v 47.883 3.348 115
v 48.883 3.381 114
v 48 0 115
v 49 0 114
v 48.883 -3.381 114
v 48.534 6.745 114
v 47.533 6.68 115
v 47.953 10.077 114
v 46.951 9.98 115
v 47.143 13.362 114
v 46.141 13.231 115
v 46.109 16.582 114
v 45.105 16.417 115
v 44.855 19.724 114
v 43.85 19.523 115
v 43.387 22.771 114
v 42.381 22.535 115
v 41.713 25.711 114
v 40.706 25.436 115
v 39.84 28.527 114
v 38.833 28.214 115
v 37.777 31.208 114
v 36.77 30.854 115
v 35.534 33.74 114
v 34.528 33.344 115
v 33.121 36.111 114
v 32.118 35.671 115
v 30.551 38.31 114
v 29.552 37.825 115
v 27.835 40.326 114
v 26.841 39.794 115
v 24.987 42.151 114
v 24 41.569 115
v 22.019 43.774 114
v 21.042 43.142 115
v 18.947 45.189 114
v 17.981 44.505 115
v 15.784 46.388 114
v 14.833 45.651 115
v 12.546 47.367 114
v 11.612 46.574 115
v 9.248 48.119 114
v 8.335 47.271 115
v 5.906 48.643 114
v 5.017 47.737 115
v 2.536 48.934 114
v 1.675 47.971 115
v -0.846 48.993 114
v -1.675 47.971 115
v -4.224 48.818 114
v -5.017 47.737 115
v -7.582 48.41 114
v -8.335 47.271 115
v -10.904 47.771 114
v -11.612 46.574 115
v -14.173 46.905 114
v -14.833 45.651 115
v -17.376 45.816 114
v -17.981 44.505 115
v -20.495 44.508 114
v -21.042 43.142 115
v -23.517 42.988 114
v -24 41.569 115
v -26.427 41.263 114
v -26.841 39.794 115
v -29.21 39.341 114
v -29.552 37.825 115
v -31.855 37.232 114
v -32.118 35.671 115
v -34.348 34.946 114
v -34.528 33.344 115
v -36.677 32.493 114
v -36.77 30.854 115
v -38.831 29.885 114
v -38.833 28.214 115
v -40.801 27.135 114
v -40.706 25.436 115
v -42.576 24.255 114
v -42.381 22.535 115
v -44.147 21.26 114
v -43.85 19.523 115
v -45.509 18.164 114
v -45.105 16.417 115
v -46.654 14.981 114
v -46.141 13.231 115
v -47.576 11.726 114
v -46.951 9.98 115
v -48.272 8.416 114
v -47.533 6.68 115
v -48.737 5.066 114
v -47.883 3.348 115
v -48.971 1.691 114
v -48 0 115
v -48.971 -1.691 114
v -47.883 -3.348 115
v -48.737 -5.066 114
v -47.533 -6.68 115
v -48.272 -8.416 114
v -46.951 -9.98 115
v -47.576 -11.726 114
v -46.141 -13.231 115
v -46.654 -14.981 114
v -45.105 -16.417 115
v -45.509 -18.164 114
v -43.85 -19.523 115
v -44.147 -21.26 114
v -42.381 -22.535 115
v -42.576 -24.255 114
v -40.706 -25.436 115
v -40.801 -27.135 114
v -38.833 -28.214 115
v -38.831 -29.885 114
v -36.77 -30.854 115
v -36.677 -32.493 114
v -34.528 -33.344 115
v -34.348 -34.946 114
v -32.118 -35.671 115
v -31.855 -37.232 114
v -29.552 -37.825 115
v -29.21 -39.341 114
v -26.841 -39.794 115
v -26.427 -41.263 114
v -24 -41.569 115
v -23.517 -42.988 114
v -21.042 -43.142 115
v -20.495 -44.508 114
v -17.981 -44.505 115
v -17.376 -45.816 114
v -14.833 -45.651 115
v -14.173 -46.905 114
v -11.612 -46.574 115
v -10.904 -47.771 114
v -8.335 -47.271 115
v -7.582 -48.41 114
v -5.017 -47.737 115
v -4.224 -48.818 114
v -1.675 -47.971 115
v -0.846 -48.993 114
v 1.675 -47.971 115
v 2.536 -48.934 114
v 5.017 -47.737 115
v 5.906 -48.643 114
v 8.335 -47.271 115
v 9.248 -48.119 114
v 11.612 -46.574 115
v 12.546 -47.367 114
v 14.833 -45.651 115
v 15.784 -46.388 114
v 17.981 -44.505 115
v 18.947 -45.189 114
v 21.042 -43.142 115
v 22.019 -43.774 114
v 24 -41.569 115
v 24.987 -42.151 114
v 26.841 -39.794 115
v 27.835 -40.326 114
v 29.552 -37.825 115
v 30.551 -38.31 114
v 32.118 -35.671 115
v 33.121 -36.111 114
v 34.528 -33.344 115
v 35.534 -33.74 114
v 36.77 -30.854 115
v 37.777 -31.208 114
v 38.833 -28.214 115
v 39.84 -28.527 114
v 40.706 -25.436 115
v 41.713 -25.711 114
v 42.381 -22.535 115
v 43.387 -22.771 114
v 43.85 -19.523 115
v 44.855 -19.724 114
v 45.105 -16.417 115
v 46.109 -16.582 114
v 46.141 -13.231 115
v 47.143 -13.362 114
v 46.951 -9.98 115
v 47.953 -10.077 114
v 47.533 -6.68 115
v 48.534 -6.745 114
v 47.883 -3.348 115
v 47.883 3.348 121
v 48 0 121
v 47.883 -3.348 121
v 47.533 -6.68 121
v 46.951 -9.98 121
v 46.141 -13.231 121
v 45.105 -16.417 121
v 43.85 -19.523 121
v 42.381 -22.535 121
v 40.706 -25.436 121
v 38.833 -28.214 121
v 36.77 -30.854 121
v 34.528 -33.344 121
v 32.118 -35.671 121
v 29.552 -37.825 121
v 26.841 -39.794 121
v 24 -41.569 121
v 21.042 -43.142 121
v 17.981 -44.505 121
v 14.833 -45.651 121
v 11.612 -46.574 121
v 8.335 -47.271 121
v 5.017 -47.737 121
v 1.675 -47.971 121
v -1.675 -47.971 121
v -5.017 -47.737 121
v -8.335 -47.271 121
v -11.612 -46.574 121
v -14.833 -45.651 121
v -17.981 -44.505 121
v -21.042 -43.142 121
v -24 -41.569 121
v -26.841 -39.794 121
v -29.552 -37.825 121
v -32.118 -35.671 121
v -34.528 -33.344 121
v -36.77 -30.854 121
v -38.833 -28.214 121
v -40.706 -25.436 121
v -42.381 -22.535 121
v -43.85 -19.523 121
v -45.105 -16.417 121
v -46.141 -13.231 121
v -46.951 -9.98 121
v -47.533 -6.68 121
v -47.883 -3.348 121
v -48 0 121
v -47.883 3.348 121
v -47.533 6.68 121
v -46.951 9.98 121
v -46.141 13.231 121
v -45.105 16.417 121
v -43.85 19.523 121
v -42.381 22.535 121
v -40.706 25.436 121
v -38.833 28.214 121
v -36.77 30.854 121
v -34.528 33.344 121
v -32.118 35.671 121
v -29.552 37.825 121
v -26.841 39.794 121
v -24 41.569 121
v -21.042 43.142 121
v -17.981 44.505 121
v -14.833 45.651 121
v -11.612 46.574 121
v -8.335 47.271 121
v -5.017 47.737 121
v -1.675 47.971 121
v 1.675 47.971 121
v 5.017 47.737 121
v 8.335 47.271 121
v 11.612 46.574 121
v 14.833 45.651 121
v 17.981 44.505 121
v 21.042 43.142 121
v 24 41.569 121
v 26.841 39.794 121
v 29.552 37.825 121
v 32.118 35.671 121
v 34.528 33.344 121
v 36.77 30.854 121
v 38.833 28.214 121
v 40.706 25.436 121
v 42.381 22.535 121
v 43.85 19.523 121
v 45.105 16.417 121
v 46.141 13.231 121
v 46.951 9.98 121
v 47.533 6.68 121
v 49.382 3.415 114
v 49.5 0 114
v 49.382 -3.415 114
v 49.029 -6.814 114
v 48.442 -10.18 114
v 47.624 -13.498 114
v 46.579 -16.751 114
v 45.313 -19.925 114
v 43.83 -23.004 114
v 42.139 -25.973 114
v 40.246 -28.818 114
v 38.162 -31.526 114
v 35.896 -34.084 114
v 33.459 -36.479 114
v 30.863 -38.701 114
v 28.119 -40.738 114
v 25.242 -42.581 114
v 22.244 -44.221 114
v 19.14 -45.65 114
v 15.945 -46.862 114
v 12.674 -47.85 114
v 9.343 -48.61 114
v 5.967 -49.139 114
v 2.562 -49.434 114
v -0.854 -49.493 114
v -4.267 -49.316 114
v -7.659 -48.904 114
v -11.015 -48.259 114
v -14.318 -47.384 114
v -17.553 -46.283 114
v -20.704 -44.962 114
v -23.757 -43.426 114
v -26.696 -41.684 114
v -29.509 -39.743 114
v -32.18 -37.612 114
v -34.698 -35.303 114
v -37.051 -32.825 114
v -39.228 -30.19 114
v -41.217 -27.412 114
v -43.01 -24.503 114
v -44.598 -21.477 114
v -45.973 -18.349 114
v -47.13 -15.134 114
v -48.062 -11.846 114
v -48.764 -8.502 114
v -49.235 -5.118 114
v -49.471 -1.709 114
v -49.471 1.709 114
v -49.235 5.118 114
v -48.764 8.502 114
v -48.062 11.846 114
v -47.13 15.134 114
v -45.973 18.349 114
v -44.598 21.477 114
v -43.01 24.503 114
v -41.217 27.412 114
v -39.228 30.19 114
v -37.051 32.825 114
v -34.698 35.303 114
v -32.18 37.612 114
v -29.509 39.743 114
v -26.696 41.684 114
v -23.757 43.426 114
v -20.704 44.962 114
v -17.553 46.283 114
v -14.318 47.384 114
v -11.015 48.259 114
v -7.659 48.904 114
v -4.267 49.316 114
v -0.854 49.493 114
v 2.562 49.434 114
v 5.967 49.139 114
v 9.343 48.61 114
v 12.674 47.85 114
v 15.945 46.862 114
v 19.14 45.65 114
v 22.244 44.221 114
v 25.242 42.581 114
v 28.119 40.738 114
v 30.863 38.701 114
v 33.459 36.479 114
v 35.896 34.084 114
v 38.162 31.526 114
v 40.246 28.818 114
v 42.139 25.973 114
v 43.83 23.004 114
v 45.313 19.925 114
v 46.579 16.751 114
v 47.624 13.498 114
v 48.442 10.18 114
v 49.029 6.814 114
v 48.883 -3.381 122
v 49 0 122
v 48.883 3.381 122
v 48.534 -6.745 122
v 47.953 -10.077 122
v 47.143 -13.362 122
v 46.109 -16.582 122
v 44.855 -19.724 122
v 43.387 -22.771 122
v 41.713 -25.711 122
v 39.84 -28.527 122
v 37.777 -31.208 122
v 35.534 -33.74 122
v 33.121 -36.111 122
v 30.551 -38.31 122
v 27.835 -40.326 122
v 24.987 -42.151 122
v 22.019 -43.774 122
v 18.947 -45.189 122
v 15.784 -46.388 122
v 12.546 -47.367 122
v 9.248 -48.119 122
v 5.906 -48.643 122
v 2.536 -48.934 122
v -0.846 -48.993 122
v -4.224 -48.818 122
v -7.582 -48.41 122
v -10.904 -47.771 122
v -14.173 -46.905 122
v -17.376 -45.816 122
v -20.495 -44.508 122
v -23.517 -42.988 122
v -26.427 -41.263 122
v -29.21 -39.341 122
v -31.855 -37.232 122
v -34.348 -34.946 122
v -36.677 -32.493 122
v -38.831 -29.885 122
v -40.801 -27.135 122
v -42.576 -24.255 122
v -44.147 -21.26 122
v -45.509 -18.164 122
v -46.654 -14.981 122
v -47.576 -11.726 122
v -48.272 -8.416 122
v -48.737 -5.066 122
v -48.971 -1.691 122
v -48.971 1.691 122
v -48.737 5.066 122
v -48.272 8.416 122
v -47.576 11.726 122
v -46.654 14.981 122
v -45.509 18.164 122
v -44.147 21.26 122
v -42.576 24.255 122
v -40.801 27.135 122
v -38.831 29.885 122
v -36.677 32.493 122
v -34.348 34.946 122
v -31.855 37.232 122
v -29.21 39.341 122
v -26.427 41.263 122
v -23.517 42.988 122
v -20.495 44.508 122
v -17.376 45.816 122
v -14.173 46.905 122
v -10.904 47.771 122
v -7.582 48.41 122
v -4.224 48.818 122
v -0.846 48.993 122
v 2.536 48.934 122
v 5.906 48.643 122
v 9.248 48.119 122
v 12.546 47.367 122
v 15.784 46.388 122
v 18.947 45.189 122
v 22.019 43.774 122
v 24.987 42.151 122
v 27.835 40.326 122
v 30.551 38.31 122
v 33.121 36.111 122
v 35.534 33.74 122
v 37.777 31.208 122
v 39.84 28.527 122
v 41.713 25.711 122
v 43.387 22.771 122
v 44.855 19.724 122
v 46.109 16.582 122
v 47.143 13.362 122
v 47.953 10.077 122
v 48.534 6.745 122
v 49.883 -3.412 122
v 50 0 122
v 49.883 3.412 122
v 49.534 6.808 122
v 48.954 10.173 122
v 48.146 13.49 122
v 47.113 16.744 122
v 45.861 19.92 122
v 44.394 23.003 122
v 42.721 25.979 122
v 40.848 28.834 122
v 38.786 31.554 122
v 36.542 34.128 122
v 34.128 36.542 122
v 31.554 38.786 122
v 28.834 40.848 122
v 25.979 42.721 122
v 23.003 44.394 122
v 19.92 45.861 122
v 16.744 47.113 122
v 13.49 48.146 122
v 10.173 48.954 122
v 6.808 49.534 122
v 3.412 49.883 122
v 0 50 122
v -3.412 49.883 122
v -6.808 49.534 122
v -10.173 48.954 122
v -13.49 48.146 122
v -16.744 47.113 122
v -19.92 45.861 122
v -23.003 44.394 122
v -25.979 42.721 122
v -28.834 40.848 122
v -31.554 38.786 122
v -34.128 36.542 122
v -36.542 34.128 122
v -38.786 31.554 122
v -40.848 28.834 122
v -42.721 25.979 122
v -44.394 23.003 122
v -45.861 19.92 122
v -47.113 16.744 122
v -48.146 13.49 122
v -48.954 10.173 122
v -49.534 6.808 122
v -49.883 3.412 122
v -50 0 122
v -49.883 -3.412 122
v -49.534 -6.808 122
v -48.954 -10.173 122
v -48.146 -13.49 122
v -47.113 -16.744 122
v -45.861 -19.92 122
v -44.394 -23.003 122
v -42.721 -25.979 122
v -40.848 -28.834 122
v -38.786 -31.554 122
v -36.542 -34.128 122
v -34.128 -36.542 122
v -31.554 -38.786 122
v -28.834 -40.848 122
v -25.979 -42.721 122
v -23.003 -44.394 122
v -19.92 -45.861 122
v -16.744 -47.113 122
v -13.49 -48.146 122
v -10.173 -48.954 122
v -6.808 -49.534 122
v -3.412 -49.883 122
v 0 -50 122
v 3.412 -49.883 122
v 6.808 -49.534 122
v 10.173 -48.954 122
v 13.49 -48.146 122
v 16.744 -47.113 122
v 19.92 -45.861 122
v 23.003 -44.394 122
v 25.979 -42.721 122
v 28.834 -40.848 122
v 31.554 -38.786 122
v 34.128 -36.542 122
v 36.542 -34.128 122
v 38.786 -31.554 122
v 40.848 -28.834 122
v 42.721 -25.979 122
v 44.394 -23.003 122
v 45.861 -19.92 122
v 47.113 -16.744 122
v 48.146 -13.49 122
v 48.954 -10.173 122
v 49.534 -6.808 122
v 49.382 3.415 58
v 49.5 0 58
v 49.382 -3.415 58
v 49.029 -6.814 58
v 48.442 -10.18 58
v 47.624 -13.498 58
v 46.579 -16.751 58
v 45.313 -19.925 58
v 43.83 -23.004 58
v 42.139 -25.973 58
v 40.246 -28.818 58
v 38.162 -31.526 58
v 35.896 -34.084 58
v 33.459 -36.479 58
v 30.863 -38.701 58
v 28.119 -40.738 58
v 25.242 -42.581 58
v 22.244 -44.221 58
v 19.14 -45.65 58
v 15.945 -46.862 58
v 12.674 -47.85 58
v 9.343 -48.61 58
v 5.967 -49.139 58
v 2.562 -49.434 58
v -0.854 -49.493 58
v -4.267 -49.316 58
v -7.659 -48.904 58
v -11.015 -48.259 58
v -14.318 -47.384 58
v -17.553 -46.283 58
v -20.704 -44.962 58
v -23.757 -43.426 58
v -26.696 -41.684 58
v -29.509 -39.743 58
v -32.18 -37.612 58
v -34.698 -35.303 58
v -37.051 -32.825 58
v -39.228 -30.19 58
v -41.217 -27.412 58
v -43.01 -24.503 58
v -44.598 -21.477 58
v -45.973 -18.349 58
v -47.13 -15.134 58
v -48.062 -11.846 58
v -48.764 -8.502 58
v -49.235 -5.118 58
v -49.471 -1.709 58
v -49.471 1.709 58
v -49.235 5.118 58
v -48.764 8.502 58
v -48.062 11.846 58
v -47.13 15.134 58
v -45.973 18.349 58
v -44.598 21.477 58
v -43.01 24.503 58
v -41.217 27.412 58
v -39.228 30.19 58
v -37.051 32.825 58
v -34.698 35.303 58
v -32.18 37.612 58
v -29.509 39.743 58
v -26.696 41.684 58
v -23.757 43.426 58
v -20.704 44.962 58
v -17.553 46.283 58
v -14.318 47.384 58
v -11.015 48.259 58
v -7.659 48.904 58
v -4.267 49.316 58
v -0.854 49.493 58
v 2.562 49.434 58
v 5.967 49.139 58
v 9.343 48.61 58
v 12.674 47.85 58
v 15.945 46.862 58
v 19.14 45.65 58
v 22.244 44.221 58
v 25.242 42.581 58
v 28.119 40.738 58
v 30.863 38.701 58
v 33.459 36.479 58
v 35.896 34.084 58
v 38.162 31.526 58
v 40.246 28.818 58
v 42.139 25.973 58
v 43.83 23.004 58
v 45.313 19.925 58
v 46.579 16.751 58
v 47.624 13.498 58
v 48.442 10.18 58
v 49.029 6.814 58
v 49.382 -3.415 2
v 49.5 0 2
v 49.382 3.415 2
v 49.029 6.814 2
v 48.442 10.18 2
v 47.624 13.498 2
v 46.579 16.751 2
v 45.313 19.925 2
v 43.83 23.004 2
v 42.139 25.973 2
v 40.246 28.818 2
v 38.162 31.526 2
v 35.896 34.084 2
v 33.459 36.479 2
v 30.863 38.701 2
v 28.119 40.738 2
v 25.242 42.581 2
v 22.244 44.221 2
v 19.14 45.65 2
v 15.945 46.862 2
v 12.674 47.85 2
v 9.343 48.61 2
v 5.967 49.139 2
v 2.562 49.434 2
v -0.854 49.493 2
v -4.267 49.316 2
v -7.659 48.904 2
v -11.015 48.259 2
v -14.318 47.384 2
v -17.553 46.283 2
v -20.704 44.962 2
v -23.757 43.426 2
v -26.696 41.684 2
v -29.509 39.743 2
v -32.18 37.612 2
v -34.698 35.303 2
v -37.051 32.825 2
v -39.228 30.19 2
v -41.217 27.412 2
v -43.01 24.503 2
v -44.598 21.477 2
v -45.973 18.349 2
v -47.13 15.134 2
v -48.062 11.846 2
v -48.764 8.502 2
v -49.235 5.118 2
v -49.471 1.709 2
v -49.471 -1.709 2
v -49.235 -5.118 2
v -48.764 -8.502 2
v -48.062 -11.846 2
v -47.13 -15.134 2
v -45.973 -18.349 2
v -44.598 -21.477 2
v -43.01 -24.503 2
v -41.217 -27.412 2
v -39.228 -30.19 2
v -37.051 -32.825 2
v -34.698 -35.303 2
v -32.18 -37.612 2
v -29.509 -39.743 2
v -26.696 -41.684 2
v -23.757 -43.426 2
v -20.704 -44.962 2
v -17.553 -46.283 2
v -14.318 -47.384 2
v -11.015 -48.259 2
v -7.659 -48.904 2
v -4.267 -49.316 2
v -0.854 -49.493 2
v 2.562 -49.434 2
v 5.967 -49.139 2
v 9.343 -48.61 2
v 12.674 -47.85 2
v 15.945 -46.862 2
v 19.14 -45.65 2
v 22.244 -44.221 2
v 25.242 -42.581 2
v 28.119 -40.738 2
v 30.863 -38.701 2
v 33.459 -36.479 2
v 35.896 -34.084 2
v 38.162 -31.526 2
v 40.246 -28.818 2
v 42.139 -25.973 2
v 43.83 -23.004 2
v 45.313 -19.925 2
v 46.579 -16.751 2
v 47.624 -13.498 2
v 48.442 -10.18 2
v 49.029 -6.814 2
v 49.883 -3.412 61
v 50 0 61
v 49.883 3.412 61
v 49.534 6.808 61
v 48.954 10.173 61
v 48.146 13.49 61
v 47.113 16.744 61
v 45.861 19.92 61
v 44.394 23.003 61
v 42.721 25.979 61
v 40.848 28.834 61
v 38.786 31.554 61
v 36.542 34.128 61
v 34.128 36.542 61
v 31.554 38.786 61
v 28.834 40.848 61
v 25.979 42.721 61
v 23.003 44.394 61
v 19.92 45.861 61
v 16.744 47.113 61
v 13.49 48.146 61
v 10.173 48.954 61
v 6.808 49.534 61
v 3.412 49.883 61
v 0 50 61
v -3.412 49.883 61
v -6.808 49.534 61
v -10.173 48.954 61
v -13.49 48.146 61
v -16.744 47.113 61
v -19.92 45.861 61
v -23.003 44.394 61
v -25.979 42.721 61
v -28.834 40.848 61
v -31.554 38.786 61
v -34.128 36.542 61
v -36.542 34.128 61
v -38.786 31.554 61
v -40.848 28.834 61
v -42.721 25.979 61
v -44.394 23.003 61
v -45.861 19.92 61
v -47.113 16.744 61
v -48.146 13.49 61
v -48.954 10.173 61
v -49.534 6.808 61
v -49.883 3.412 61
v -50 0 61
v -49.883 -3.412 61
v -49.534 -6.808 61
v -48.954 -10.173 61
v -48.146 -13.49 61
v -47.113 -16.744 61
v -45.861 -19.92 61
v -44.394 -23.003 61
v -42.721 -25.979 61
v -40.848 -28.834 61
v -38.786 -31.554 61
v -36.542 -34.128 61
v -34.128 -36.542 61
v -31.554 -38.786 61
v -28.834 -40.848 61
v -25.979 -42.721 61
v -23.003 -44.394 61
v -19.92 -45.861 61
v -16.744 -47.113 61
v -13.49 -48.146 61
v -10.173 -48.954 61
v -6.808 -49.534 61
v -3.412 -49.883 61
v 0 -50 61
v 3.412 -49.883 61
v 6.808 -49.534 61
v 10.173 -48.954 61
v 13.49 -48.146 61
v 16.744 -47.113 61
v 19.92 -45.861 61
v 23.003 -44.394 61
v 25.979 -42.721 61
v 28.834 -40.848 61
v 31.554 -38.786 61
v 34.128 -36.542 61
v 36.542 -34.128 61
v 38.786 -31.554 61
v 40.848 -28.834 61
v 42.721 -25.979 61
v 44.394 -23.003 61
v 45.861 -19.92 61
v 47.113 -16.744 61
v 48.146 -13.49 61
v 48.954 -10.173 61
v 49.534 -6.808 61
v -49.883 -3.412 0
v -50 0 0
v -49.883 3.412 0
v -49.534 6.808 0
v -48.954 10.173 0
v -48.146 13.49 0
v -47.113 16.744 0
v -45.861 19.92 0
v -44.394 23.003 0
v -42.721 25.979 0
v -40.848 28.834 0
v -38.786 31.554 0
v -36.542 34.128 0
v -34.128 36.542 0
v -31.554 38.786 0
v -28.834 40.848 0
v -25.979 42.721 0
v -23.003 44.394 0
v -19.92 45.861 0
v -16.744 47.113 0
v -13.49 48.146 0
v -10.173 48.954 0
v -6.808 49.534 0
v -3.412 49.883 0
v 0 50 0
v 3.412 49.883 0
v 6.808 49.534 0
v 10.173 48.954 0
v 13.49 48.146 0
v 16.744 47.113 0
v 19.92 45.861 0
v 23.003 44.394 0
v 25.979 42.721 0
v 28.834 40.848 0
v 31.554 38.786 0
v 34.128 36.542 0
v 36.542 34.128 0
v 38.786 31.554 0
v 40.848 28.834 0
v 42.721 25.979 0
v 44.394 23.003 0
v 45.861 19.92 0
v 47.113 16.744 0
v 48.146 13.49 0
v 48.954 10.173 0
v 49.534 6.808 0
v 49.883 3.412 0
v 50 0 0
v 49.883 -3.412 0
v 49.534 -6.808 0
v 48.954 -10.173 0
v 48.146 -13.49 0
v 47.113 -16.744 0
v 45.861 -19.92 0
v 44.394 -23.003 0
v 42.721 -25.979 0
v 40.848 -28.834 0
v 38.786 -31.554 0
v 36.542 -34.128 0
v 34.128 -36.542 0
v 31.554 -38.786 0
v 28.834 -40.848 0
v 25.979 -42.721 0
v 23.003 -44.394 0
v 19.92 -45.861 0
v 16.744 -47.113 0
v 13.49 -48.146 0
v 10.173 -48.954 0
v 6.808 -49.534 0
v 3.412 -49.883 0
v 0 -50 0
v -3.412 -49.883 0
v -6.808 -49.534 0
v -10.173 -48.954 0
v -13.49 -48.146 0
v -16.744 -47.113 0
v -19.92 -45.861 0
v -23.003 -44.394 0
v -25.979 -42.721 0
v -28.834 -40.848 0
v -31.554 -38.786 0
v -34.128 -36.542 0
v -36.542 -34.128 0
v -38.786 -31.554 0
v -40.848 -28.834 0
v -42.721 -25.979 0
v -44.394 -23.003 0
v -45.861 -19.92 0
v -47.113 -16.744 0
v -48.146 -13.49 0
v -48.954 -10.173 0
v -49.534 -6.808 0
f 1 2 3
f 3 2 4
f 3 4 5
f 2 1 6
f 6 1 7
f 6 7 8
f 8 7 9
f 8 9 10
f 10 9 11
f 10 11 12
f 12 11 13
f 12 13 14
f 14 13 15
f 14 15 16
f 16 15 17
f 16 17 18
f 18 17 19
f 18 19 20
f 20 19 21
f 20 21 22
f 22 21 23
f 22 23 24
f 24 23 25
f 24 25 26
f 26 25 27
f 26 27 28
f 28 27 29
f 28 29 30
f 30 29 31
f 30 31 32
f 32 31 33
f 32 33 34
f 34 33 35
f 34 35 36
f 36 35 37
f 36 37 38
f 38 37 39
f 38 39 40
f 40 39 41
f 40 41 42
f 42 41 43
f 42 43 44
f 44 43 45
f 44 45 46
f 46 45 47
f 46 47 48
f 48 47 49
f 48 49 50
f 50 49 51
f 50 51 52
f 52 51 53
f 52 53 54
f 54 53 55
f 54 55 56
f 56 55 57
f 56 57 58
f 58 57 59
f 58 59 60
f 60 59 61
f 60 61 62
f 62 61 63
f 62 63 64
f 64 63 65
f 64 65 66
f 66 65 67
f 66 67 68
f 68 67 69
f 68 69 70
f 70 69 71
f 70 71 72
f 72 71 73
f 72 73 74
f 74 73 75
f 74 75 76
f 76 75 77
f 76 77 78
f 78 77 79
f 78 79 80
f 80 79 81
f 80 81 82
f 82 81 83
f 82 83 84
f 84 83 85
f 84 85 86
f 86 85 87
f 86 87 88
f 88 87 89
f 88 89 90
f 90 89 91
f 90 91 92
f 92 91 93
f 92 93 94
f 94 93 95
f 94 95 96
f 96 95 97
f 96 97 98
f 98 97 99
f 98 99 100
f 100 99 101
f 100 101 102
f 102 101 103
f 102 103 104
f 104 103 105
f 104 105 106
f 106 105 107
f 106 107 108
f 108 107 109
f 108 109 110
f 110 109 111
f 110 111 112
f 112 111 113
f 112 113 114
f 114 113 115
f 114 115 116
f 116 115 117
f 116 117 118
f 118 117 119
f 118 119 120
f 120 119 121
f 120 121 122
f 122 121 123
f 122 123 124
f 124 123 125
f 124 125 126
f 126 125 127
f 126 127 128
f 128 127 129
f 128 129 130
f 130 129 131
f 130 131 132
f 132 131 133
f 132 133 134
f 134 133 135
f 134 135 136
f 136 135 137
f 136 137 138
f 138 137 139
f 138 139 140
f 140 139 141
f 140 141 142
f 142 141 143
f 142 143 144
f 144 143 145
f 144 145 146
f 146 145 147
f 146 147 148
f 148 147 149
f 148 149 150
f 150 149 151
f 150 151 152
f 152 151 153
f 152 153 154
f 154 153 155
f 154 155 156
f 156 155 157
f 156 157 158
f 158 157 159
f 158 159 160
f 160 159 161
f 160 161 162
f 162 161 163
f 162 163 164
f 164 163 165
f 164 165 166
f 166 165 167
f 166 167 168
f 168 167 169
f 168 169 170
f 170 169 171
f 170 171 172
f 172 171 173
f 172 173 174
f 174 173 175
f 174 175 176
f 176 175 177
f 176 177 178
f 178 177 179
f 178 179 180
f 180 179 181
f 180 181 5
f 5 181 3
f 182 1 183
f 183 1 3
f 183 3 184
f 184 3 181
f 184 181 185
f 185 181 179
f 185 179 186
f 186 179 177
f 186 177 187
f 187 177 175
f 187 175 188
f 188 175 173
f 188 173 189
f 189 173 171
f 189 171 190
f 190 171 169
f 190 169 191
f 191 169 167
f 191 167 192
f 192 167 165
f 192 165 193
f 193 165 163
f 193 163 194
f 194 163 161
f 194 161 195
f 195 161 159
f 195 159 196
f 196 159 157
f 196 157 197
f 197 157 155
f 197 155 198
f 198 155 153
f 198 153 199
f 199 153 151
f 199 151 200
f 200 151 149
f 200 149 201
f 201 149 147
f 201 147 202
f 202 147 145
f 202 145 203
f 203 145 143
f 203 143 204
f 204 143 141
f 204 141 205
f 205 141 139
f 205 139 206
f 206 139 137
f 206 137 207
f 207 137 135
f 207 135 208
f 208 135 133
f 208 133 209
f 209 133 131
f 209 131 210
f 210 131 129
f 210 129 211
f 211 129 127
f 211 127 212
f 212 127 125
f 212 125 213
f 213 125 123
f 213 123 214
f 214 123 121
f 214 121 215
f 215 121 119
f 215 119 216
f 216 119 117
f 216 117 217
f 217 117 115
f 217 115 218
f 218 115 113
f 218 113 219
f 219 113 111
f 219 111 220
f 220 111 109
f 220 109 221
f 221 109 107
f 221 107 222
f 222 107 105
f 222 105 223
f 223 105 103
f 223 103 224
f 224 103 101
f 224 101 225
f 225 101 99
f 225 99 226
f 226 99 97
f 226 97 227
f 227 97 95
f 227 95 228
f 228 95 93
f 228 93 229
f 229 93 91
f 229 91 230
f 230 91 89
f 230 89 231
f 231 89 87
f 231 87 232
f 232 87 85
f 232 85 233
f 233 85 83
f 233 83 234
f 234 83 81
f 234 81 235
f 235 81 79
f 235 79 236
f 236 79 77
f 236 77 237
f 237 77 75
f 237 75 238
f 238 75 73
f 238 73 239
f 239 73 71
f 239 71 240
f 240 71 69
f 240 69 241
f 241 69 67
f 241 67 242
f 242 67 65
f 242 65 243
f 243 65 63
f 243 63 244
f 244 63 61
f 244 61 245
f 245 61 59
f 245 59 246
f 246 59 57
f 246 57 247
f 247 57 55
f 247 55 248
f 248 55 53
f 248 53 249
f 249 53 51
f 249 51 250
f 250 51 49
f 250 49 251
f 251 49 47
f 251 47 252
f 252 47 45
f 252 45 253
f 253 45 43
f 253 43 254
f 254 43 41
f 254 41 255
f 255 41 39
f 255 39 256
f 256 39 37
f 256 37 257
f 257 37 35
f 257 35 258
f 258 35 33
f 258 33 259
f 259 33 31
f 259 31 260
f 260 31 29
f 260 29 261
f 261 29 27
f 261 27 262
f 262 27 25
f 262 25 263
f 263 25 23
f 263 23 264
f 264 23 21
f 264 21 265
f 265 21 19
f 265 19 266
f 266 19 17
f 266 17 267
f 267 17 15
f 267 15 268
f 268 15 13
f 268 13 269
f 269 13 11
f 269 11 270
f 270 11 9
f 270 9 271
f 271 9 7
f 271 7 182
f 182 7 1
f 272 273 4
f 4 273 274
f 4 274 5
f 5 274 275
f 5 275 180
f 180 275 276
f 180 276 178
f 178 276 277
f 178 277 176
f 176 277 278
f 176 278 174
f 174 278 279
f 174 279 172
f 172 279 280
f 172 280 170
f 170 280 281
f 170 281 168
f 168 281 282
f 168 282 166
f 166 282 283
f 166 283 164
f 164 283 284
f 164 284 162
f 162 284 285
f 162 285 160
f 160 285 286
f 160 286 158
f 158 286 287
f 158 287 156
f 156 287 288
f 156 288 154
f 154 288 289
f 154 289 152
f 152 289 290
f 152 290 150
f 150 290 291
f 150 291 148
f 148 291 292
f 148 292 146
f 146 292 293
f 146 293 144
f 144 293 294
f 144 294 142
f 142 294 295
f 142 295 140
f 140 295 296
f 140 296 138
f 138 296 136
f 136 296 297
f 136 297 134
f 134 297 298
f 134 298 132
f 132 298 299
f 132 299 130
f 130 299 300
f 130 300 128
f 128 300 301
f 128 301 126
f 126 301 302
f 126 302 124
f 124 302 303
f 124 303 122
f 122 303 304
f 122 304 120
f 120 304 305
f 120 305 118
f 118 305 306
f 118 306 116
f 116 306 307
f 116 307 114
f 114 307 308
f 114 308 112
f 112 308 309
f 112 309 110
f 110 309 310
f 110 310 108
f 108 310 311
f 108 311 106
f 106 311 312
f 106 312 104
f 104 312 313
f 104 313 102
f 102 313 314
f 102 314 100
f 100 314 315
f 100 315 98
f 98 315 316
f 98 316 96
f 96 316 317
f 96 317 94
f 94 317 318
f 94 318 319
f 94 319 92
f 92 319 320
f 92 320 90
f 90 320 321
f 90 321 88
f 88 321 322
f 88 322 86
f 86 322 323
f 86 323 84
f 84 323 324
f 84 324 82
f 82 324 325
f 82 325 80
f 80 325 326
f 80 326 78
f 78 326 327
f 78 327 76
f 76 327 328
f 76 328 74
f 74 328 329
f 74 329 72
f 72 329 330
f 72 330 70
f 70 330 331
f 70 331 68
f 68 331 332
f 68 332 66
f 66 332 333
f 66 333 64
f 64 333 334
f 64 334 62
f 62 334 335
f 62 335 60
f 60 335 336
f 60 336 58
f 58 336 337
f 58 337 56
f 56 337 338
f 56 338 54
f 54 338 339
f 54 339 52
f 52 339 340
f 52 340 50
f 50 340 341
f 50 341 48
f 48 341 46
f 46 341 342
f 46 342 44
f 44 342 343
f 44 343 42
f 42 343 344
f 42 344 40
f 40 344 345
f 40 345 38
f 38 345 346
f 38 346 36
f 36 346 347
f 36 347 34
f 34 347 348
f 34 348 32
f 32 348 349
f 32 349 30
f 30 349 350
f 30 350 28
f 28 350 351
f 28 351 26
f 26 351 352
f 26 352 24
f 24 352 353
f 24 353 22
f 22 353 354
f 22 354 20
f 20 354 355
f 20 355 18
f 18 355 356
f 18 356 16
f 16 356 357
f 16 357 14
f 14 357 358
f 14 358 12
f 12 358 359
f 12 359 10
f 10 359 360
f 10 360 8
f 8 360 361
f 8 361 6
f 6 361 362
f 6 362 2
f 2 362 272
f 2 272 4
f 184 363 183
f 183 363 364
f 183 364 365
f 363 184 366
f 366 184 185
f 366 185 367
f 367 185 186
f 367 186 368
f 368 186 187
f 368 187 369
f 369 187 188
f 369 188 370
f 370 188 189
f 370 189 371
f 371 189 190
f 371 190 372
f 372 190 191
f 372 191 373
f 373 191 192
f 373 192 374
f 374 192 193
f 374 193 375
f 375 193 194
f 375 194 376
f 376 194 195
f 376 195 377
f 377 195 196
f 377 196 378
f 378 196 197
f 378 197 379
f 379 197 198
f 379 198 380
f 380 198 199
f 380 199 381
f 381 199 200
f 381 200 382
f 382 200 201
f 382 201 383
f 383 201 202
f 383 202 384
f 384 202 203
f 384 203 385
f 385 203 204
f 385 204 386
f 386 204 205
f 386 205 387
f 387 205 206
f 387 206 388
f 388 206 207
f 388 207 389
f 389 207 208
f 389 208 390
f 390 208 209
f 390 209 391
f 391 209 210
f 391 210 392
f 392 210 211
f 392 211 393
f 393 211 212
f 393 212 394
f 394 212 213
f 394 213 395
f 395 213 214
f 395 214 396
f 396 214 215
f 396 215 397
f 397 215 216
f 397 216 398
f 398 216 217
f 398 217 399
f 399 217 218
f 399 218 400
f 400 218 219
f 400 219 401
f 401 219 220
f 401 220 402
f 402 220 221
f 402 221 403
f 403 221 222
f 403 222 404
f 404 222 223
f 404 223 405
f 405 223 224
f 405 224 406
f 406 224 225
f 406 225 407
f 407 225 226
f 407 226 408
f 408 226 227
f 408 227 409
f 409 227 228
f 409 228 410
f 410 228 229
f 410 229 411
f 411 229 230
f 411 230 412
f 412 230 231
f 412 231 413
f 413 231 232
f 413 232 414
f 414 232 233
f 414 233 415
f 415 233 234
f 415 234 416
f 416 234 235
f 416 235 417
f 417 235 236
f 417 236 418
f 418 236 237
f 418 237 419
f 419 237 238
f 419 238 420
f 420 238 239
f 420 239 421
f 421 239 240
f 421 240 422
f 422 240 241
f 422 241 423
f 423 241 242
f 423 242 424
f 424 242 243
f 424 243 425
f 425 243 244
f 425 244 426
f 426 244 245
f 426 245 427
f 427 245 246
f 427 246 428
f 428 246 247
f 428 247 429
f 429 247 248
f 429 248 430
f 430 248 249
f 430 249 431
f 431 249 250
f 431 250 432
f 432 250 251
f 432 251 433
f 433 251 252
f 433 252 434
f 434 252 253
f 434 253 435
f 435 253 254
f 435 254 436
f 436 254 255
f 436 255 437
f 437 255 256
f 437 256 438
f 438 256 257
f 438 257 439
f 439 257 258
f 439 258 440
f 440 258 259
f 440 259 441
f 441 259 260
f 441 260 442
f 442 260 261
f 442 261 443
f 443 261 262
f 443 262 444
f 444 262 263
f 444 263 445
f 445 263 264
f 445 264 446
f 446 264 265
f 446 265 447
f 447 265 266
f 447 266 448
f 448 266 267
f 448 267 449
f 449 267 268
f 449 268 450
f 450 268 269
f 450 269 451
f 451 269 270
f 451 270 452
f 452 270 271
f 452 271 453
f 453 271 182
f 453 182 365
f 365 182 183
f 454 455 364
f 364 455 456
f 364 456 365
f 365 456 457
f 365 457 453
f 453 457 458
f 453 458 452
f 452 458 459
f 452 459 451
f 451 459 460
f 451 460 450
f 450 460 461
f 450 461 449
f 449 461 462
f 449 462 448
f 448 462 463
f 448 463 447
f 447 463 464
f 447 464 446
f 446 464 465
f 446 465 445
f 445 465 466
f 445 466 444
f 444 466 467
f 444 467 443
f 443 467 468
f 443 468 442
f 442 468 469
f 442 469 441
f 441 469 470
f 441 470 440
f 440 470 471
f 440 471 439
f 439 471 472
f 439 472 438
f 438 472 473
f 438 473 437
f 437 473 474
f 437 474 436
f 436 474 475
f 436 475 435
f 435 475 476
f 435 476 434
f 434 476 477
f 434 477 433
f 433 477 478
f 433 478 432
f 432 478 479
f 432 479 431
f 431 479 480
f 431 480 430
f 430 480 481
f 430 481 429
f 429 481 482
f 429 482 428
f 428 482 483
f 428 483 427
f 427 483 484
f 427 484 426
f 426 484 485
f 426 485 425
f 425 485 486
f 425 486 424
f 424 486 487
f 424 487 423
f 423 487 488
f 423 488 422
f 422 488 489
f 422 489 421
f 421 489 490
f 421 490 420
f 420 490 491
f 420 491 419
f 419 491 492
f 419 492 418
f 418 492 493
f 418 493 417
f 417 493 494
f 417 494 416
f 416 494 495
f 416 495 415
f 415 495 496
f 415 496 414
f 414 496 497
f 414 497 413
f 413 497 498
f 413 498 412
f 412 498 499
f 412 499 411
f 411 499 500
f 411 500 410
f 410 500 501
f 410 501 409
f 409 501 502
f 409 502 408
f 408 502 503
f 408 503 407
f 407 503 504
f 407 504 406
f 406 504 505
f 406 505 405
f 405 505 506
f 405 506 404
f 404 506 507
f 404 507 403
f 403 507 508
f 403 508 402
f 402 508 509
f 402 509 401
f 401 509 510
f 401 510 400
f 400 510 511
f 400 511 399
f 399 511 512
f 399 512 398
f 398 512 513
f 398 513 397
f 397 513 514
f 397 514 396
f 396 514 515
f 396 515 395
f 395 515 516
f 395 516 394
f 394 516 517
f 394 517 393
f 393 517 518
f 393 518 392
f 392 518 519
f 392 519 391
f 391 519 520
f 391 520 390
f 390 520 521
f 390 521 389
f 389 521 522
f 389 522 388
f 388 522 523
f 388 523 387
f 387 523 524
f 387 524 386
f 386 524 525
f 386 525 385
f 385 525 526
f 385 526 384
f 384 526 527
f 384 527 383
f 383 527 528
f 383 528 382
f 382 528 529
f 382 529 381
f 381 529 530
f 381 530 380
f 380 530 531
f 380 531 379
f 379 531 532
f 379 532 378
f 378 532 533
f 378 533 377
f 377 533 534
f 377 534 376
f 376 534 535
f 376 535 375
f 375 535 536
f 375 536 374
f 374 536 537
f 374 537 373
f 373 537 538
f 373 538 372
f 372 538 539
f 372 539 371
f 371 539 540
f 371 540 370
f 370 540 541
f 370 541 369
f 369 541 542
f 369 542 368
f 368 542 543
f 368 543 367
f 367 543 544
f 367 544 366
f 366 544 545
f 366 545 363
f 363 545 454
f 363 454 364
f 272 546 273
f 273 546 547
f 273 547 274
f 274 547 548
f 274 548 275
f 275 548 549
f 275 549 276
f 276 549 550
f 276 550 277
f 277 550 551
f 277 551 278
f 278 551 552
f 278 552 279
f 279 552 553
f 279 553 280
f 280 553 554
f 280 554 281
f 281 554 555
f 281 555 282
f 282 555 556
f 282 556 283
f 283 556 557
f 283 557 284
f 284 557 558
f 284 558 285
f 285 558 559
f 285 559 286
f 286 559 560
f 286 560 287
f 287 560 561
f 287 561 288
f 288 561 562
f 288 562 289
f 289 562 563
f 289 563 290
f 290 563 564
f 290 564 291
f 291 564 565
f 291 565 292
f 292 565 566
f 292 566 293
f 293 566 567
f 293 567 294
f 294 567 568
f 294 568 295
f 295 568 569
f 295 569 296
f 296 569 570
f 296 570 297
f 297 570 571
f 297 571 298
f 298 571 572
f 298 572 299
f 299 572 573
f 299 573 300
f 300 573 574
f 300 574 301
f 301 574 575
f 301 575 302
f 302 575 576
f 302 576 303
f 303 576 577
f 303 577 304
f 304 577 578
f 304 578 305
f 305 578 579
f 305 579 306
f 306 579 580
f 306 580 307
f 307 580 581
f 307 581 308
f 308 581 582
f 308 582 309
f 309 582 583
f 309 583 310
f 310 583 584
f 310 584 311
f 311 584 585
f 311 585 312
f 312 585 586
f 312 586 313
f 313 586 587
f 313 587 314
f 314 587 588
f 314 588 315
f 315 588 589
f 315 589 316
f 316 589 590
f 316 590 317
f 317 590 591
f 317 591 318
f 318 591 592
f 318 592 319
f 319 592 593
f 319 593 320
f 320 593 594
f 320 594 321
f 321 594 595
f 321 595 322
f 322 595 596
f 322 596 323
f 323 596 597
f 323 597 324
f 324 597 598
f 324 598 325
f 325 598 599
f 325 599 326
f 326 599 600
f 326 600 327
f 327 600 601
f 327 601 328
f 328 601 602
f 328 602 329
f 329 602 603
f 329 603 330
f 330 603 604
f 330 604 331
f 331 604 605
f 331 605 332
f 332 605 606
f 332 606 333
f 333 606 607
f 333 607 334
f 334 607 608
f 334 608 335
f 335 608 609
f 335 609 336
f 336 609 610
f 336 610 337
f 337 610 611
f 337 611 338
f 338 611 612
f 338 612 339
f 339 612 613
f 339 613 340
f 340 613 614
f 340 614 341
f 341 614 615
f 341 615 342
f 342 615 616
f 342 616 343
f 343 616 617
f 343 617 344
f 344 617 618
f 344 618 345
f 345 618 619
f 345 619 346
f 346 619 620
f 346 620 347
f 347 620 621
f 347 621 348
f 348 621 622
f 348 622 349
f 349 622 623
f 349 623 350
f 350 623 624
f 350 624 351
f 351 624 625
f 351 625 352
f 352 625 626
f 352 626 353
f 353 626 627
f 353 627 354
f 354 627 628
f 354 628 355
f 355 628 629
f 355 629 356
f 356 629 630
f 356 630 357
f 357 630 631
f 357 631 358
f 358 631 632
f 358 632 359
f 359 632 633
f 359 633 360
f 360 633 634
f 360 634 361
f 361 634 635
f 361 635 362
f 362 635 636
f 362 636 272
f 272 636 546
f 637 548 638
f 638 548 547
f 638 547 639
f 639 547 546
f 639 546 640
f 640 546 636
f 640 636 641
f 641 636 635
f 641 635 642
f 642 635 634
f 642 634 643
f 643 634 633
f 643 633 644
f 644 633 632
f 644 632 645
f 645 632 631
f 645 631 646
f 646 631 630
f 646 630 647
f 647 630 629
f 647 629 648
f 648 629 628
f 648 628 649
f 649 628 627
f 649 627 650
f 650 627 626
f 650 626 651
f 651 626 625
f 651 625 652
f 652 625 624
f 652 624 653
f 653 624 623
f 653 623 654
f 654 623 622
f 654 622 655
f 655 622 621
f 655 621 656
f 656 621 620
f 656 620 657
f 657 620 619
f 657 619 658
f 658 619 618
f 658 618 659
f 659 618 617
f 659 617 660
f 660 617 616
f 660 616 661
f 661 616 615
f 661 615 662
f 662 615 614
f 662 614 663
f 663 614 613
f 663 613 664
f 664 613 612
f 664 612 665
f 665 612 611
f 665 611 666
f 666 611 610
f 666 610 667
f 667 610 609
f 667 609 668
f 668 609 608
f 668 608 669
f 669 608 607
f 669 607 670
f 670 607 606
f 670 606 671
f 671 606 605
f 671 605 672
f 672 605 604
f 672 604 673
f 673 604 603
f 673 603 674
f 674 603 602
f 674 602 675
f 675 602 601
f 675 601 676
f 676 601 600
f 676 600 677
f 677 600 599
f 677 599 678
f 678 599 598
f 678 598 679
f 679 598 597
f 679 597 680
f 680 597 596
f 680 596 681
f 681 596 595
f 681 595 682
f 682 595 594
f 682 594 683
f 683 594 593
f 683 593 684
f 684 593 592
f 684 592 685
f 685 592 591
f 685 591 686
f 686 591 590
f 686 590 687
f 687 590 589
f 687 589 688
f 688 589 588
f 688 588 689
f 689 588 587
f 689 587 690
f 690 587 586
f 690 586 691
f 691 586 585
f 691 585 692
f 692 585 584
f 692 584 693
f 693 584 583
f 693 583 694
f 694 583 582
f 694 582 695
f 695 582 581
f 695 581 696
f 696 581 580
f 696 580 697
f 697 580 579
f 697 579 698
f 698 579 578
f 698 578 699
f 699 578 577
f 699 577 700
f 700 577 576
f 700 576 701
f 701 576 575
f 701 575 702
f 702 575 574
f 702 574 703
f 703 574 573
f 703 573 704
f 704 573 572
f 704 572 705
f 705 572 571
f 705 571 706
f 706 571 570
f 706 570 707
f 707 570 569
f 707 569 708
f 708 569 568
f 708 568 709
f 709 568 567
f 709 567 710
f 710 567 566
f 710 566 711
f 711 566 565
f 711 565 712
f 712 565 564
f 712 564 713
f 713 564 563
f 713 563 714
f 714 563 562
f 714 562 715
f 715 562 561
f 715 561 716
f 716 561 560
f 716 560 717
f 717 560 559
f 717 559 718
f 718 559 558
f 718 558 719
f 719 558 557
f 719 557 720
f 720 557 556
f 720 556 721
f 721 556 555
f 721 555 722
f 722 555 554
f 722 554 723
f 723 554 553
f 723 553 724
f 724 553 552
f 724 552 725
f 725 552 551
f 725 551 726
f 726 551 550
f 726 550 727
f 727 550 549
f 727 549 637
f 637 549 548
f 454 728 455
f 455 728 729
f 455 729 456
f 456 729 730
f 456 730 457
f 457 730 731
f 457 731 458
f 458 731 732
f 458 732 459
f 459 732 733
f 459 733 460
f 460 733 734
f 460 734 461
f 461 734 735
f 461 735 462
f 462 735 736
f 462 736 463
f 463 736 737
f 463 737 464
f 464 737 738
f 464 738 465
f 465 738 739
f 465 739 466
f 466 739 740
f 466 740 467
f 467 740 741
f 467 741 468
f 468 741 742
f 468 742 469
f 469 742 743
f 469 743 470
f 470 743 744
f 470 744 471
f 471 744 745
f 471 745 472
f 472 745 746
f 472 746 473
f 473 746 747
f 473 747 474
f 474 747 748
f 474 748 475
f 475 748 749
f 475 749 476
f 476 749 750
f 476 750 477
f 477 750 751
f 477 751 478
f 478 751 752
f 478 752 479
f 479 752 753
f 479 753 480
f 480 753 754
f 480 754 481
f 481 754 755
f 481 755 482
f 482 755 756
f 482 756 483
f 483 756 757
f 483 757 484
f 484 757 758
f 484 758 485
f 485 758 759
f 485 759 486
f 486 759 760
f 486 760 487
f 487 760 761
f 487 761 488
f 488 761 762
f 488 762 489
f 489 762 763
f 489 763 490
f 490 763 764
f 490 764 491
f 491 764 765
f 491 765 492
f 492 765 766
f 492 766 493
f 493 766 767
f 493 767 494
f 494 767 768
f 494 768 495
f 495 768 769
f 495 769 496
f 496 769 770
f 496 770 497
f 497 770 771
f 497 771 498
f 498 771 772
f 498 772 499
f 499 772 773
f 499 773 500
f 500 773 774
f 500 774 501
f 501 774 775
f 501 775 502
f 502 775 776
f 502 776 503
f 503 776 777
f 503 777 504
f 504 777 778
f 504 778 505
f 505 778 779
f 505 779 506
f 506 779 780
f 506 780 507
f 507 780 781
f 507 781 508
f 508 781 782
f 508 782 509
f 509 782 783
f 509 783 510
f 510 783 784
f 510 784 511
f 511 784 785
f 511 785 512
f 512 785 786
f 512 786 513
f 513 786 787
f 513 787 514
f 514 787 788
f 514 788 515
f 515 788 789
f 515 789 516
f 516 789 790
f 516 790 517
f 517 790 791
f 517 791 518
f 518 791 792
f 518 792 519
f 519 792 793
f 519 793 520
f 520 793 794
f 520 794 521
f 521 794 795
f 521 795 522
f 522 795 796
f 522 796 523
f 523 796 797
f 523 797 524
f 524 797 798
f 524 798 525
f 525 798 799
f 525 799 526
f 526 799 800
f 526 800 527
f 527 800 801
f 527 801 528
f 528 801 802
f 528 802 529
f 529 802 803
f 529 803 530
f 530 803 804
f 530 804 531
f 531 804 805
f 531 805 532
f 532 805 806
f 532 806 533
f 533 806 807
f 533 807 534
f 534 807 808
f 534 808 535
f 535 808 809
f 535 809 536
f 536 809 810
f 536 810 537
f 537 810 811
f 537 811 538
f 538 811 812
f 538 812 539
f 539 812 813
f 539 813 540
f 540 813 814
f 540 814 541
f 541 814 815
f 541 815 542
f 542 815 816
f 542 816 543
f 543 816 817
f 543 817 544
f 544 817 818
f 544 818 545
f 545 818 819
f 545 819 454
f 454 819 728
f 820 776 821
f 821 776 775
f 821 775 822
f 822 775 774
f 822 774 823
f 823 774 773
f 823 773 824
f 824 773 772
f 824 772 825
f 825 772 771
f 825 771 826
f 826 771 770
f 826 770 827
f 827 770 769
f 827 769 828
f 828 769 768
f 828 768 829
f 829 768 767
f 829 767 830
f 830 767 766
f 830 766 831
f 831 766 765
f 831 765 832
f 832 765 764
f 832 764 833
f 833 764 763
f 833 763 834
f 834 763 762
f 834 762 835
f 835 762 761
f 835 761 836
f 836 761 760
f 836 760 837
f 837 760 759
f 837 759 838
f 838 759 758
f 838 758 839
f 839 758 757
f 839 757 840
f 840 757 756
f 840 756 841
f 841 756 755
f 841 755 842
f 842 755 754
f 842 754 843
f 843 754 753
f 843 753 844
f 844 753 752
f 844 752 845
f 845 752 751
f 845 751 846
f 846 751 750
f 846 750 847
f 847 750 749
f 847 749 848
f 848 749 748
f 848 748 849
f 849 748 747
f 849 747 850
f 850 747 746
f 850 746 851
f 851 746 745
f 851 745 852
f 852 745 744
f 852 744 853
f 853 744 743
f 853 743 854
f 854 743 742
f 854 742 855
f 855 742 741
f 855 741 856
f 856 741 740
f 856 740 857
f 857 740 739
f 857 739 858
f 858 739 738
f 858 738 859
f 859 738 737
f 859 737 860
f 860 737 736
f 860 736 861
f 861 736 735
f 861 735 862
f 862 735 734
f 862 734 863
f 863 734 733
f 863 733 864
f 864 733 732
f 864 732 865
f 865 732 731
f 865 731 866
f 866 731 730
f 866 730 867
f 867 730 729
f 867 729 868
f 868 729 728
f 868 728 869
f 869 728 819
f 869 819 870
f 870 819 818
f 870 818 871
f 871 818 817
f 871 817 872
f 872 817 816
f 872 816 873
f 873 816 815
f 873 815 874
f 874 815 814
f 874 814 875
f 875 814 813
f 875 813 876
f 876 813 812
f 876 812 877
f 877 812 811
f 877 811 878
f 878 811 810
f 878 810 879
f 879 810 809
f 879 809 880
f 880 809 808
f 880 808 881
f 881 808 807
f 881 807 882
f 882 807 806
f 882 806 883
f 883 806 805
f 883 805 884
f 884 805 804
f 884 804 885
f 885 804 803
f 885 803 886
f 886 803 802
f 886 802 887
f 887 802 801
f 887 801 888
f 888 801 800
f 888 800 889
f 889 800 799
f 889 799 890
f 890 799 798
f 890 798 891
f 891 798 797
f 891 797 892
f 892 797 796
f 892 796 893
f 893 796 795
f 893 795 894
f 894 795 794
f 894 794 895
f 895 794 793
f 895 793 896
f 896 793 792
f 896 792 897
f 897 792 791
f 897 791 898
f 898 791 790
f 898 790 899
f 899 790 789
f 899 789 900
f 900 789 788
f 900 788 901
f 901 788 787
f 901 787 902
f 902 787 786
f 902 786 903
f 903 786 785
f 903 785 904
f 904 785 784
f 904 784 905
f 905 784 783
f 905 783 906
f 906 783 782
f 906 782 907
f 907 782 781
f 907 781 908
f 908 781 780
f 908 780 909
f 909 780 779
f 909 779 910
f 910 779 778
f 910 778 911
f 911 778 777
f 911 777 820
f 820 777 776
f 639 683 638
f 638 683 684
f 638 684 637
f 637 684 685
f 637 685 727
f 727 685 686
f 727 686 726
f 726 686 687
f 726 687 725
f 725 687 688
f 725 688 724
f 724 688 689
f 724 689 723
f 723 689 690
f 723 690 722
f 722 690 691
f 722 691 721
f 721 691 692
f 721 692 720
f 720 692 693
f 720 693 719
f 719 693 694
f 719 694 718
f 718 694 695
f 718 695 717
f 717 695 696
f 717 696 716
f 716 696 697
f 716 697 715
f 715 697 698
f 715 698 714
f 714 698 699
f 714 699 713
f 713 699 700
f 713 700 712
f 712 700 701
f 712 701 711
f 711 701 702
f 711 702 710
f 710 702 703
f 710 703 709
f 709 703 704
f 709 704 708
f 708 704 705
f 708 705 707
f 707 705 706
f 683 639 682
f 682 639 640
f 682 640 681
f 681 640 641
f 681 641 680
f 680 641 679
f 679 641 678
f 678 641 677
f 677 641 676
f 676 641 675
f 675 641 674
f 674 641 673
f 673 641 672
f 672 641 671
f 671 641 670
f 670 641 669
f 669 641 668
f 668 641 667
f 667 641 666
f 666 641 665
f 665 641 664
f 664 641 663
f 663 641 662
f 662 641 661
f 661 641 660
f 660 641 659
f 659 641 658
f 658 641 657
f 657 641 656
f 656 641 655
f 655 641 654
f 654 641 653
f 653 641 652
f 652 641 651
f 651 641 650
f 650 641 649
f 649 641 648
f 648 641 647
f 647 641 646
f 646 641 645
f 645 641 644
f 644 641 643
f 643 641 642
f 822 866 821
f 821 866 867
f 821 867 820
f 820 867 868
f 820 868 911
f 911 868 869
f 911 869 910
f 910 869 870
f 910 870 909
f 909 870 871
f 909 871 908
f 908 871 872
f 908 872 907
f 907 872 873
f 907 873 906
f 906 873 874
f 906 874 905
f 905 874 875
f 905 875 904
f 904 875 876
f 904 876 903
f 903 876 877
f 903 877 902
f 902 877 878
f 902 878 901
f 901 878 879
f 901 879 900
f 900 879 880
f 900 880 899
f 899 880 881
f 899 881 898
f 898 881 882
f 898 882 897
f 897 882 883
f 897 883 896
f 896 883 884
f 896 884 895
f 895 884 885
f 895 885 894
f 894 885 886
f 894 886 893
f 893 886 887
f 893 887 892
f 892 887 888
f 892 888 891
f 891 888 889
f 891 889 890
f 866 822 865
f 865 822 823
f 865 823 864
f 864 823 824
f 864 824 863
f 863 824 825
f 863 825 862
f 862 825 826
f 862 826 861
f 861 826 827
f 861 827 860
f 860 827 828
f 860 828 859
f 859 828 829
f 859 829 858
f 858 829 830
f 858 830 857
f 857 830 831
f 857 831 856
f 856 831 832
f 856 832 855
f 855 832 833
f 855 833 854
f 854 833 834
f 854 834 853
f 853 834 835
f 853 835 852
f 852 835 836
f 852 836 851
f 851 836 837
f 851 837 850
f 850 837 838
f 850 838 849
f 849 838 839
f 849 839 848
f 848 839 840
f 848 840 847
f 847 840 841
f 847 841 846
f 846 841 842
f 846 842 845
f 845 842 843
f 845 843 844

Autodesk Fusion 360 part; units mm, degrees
sketch "Sketch1" plane through (0, 0, 0) normal (0, 0, 1) x (1, 0, 0)
  circle A0 centre (0, 0) radius 50
extrude "Extrude1" add sketch "Sketch1" along normal blind 2
sketch "Sketch2" plane through (0, 0, 2) normal (0, 0, 1) x (-1, 0, 0)
  circle A0 centre (0, 0) radius 50
  circle A1 centre (0, 0) radius 49.5
  circle A2 centre (0, 0) radius 50
  dimension "d5" = 99
extrude "Extrude2" add sketch "Sketch2" along normal blind 120
sketch "Sketch3" plane through (0, 0, 122) normal (0, 0, 1) x (-1, 0, 0)
  circle A0 centre (0, 0) radius 49.5
  circle A1 centre (0, 0) radius 50
  circle A2 centre (0, 0) radius 48
  circle A3 centre (0, 0) radius 49.5
extrude "Extrude3" add sketch "Sketch3" against normal blind 8 contours A0 A3
chamfer "Chamfer1" distance 1 angle 45 2 edges at (44.7517, -17.3575, 122) (44.7517, 17.3575, 114)
